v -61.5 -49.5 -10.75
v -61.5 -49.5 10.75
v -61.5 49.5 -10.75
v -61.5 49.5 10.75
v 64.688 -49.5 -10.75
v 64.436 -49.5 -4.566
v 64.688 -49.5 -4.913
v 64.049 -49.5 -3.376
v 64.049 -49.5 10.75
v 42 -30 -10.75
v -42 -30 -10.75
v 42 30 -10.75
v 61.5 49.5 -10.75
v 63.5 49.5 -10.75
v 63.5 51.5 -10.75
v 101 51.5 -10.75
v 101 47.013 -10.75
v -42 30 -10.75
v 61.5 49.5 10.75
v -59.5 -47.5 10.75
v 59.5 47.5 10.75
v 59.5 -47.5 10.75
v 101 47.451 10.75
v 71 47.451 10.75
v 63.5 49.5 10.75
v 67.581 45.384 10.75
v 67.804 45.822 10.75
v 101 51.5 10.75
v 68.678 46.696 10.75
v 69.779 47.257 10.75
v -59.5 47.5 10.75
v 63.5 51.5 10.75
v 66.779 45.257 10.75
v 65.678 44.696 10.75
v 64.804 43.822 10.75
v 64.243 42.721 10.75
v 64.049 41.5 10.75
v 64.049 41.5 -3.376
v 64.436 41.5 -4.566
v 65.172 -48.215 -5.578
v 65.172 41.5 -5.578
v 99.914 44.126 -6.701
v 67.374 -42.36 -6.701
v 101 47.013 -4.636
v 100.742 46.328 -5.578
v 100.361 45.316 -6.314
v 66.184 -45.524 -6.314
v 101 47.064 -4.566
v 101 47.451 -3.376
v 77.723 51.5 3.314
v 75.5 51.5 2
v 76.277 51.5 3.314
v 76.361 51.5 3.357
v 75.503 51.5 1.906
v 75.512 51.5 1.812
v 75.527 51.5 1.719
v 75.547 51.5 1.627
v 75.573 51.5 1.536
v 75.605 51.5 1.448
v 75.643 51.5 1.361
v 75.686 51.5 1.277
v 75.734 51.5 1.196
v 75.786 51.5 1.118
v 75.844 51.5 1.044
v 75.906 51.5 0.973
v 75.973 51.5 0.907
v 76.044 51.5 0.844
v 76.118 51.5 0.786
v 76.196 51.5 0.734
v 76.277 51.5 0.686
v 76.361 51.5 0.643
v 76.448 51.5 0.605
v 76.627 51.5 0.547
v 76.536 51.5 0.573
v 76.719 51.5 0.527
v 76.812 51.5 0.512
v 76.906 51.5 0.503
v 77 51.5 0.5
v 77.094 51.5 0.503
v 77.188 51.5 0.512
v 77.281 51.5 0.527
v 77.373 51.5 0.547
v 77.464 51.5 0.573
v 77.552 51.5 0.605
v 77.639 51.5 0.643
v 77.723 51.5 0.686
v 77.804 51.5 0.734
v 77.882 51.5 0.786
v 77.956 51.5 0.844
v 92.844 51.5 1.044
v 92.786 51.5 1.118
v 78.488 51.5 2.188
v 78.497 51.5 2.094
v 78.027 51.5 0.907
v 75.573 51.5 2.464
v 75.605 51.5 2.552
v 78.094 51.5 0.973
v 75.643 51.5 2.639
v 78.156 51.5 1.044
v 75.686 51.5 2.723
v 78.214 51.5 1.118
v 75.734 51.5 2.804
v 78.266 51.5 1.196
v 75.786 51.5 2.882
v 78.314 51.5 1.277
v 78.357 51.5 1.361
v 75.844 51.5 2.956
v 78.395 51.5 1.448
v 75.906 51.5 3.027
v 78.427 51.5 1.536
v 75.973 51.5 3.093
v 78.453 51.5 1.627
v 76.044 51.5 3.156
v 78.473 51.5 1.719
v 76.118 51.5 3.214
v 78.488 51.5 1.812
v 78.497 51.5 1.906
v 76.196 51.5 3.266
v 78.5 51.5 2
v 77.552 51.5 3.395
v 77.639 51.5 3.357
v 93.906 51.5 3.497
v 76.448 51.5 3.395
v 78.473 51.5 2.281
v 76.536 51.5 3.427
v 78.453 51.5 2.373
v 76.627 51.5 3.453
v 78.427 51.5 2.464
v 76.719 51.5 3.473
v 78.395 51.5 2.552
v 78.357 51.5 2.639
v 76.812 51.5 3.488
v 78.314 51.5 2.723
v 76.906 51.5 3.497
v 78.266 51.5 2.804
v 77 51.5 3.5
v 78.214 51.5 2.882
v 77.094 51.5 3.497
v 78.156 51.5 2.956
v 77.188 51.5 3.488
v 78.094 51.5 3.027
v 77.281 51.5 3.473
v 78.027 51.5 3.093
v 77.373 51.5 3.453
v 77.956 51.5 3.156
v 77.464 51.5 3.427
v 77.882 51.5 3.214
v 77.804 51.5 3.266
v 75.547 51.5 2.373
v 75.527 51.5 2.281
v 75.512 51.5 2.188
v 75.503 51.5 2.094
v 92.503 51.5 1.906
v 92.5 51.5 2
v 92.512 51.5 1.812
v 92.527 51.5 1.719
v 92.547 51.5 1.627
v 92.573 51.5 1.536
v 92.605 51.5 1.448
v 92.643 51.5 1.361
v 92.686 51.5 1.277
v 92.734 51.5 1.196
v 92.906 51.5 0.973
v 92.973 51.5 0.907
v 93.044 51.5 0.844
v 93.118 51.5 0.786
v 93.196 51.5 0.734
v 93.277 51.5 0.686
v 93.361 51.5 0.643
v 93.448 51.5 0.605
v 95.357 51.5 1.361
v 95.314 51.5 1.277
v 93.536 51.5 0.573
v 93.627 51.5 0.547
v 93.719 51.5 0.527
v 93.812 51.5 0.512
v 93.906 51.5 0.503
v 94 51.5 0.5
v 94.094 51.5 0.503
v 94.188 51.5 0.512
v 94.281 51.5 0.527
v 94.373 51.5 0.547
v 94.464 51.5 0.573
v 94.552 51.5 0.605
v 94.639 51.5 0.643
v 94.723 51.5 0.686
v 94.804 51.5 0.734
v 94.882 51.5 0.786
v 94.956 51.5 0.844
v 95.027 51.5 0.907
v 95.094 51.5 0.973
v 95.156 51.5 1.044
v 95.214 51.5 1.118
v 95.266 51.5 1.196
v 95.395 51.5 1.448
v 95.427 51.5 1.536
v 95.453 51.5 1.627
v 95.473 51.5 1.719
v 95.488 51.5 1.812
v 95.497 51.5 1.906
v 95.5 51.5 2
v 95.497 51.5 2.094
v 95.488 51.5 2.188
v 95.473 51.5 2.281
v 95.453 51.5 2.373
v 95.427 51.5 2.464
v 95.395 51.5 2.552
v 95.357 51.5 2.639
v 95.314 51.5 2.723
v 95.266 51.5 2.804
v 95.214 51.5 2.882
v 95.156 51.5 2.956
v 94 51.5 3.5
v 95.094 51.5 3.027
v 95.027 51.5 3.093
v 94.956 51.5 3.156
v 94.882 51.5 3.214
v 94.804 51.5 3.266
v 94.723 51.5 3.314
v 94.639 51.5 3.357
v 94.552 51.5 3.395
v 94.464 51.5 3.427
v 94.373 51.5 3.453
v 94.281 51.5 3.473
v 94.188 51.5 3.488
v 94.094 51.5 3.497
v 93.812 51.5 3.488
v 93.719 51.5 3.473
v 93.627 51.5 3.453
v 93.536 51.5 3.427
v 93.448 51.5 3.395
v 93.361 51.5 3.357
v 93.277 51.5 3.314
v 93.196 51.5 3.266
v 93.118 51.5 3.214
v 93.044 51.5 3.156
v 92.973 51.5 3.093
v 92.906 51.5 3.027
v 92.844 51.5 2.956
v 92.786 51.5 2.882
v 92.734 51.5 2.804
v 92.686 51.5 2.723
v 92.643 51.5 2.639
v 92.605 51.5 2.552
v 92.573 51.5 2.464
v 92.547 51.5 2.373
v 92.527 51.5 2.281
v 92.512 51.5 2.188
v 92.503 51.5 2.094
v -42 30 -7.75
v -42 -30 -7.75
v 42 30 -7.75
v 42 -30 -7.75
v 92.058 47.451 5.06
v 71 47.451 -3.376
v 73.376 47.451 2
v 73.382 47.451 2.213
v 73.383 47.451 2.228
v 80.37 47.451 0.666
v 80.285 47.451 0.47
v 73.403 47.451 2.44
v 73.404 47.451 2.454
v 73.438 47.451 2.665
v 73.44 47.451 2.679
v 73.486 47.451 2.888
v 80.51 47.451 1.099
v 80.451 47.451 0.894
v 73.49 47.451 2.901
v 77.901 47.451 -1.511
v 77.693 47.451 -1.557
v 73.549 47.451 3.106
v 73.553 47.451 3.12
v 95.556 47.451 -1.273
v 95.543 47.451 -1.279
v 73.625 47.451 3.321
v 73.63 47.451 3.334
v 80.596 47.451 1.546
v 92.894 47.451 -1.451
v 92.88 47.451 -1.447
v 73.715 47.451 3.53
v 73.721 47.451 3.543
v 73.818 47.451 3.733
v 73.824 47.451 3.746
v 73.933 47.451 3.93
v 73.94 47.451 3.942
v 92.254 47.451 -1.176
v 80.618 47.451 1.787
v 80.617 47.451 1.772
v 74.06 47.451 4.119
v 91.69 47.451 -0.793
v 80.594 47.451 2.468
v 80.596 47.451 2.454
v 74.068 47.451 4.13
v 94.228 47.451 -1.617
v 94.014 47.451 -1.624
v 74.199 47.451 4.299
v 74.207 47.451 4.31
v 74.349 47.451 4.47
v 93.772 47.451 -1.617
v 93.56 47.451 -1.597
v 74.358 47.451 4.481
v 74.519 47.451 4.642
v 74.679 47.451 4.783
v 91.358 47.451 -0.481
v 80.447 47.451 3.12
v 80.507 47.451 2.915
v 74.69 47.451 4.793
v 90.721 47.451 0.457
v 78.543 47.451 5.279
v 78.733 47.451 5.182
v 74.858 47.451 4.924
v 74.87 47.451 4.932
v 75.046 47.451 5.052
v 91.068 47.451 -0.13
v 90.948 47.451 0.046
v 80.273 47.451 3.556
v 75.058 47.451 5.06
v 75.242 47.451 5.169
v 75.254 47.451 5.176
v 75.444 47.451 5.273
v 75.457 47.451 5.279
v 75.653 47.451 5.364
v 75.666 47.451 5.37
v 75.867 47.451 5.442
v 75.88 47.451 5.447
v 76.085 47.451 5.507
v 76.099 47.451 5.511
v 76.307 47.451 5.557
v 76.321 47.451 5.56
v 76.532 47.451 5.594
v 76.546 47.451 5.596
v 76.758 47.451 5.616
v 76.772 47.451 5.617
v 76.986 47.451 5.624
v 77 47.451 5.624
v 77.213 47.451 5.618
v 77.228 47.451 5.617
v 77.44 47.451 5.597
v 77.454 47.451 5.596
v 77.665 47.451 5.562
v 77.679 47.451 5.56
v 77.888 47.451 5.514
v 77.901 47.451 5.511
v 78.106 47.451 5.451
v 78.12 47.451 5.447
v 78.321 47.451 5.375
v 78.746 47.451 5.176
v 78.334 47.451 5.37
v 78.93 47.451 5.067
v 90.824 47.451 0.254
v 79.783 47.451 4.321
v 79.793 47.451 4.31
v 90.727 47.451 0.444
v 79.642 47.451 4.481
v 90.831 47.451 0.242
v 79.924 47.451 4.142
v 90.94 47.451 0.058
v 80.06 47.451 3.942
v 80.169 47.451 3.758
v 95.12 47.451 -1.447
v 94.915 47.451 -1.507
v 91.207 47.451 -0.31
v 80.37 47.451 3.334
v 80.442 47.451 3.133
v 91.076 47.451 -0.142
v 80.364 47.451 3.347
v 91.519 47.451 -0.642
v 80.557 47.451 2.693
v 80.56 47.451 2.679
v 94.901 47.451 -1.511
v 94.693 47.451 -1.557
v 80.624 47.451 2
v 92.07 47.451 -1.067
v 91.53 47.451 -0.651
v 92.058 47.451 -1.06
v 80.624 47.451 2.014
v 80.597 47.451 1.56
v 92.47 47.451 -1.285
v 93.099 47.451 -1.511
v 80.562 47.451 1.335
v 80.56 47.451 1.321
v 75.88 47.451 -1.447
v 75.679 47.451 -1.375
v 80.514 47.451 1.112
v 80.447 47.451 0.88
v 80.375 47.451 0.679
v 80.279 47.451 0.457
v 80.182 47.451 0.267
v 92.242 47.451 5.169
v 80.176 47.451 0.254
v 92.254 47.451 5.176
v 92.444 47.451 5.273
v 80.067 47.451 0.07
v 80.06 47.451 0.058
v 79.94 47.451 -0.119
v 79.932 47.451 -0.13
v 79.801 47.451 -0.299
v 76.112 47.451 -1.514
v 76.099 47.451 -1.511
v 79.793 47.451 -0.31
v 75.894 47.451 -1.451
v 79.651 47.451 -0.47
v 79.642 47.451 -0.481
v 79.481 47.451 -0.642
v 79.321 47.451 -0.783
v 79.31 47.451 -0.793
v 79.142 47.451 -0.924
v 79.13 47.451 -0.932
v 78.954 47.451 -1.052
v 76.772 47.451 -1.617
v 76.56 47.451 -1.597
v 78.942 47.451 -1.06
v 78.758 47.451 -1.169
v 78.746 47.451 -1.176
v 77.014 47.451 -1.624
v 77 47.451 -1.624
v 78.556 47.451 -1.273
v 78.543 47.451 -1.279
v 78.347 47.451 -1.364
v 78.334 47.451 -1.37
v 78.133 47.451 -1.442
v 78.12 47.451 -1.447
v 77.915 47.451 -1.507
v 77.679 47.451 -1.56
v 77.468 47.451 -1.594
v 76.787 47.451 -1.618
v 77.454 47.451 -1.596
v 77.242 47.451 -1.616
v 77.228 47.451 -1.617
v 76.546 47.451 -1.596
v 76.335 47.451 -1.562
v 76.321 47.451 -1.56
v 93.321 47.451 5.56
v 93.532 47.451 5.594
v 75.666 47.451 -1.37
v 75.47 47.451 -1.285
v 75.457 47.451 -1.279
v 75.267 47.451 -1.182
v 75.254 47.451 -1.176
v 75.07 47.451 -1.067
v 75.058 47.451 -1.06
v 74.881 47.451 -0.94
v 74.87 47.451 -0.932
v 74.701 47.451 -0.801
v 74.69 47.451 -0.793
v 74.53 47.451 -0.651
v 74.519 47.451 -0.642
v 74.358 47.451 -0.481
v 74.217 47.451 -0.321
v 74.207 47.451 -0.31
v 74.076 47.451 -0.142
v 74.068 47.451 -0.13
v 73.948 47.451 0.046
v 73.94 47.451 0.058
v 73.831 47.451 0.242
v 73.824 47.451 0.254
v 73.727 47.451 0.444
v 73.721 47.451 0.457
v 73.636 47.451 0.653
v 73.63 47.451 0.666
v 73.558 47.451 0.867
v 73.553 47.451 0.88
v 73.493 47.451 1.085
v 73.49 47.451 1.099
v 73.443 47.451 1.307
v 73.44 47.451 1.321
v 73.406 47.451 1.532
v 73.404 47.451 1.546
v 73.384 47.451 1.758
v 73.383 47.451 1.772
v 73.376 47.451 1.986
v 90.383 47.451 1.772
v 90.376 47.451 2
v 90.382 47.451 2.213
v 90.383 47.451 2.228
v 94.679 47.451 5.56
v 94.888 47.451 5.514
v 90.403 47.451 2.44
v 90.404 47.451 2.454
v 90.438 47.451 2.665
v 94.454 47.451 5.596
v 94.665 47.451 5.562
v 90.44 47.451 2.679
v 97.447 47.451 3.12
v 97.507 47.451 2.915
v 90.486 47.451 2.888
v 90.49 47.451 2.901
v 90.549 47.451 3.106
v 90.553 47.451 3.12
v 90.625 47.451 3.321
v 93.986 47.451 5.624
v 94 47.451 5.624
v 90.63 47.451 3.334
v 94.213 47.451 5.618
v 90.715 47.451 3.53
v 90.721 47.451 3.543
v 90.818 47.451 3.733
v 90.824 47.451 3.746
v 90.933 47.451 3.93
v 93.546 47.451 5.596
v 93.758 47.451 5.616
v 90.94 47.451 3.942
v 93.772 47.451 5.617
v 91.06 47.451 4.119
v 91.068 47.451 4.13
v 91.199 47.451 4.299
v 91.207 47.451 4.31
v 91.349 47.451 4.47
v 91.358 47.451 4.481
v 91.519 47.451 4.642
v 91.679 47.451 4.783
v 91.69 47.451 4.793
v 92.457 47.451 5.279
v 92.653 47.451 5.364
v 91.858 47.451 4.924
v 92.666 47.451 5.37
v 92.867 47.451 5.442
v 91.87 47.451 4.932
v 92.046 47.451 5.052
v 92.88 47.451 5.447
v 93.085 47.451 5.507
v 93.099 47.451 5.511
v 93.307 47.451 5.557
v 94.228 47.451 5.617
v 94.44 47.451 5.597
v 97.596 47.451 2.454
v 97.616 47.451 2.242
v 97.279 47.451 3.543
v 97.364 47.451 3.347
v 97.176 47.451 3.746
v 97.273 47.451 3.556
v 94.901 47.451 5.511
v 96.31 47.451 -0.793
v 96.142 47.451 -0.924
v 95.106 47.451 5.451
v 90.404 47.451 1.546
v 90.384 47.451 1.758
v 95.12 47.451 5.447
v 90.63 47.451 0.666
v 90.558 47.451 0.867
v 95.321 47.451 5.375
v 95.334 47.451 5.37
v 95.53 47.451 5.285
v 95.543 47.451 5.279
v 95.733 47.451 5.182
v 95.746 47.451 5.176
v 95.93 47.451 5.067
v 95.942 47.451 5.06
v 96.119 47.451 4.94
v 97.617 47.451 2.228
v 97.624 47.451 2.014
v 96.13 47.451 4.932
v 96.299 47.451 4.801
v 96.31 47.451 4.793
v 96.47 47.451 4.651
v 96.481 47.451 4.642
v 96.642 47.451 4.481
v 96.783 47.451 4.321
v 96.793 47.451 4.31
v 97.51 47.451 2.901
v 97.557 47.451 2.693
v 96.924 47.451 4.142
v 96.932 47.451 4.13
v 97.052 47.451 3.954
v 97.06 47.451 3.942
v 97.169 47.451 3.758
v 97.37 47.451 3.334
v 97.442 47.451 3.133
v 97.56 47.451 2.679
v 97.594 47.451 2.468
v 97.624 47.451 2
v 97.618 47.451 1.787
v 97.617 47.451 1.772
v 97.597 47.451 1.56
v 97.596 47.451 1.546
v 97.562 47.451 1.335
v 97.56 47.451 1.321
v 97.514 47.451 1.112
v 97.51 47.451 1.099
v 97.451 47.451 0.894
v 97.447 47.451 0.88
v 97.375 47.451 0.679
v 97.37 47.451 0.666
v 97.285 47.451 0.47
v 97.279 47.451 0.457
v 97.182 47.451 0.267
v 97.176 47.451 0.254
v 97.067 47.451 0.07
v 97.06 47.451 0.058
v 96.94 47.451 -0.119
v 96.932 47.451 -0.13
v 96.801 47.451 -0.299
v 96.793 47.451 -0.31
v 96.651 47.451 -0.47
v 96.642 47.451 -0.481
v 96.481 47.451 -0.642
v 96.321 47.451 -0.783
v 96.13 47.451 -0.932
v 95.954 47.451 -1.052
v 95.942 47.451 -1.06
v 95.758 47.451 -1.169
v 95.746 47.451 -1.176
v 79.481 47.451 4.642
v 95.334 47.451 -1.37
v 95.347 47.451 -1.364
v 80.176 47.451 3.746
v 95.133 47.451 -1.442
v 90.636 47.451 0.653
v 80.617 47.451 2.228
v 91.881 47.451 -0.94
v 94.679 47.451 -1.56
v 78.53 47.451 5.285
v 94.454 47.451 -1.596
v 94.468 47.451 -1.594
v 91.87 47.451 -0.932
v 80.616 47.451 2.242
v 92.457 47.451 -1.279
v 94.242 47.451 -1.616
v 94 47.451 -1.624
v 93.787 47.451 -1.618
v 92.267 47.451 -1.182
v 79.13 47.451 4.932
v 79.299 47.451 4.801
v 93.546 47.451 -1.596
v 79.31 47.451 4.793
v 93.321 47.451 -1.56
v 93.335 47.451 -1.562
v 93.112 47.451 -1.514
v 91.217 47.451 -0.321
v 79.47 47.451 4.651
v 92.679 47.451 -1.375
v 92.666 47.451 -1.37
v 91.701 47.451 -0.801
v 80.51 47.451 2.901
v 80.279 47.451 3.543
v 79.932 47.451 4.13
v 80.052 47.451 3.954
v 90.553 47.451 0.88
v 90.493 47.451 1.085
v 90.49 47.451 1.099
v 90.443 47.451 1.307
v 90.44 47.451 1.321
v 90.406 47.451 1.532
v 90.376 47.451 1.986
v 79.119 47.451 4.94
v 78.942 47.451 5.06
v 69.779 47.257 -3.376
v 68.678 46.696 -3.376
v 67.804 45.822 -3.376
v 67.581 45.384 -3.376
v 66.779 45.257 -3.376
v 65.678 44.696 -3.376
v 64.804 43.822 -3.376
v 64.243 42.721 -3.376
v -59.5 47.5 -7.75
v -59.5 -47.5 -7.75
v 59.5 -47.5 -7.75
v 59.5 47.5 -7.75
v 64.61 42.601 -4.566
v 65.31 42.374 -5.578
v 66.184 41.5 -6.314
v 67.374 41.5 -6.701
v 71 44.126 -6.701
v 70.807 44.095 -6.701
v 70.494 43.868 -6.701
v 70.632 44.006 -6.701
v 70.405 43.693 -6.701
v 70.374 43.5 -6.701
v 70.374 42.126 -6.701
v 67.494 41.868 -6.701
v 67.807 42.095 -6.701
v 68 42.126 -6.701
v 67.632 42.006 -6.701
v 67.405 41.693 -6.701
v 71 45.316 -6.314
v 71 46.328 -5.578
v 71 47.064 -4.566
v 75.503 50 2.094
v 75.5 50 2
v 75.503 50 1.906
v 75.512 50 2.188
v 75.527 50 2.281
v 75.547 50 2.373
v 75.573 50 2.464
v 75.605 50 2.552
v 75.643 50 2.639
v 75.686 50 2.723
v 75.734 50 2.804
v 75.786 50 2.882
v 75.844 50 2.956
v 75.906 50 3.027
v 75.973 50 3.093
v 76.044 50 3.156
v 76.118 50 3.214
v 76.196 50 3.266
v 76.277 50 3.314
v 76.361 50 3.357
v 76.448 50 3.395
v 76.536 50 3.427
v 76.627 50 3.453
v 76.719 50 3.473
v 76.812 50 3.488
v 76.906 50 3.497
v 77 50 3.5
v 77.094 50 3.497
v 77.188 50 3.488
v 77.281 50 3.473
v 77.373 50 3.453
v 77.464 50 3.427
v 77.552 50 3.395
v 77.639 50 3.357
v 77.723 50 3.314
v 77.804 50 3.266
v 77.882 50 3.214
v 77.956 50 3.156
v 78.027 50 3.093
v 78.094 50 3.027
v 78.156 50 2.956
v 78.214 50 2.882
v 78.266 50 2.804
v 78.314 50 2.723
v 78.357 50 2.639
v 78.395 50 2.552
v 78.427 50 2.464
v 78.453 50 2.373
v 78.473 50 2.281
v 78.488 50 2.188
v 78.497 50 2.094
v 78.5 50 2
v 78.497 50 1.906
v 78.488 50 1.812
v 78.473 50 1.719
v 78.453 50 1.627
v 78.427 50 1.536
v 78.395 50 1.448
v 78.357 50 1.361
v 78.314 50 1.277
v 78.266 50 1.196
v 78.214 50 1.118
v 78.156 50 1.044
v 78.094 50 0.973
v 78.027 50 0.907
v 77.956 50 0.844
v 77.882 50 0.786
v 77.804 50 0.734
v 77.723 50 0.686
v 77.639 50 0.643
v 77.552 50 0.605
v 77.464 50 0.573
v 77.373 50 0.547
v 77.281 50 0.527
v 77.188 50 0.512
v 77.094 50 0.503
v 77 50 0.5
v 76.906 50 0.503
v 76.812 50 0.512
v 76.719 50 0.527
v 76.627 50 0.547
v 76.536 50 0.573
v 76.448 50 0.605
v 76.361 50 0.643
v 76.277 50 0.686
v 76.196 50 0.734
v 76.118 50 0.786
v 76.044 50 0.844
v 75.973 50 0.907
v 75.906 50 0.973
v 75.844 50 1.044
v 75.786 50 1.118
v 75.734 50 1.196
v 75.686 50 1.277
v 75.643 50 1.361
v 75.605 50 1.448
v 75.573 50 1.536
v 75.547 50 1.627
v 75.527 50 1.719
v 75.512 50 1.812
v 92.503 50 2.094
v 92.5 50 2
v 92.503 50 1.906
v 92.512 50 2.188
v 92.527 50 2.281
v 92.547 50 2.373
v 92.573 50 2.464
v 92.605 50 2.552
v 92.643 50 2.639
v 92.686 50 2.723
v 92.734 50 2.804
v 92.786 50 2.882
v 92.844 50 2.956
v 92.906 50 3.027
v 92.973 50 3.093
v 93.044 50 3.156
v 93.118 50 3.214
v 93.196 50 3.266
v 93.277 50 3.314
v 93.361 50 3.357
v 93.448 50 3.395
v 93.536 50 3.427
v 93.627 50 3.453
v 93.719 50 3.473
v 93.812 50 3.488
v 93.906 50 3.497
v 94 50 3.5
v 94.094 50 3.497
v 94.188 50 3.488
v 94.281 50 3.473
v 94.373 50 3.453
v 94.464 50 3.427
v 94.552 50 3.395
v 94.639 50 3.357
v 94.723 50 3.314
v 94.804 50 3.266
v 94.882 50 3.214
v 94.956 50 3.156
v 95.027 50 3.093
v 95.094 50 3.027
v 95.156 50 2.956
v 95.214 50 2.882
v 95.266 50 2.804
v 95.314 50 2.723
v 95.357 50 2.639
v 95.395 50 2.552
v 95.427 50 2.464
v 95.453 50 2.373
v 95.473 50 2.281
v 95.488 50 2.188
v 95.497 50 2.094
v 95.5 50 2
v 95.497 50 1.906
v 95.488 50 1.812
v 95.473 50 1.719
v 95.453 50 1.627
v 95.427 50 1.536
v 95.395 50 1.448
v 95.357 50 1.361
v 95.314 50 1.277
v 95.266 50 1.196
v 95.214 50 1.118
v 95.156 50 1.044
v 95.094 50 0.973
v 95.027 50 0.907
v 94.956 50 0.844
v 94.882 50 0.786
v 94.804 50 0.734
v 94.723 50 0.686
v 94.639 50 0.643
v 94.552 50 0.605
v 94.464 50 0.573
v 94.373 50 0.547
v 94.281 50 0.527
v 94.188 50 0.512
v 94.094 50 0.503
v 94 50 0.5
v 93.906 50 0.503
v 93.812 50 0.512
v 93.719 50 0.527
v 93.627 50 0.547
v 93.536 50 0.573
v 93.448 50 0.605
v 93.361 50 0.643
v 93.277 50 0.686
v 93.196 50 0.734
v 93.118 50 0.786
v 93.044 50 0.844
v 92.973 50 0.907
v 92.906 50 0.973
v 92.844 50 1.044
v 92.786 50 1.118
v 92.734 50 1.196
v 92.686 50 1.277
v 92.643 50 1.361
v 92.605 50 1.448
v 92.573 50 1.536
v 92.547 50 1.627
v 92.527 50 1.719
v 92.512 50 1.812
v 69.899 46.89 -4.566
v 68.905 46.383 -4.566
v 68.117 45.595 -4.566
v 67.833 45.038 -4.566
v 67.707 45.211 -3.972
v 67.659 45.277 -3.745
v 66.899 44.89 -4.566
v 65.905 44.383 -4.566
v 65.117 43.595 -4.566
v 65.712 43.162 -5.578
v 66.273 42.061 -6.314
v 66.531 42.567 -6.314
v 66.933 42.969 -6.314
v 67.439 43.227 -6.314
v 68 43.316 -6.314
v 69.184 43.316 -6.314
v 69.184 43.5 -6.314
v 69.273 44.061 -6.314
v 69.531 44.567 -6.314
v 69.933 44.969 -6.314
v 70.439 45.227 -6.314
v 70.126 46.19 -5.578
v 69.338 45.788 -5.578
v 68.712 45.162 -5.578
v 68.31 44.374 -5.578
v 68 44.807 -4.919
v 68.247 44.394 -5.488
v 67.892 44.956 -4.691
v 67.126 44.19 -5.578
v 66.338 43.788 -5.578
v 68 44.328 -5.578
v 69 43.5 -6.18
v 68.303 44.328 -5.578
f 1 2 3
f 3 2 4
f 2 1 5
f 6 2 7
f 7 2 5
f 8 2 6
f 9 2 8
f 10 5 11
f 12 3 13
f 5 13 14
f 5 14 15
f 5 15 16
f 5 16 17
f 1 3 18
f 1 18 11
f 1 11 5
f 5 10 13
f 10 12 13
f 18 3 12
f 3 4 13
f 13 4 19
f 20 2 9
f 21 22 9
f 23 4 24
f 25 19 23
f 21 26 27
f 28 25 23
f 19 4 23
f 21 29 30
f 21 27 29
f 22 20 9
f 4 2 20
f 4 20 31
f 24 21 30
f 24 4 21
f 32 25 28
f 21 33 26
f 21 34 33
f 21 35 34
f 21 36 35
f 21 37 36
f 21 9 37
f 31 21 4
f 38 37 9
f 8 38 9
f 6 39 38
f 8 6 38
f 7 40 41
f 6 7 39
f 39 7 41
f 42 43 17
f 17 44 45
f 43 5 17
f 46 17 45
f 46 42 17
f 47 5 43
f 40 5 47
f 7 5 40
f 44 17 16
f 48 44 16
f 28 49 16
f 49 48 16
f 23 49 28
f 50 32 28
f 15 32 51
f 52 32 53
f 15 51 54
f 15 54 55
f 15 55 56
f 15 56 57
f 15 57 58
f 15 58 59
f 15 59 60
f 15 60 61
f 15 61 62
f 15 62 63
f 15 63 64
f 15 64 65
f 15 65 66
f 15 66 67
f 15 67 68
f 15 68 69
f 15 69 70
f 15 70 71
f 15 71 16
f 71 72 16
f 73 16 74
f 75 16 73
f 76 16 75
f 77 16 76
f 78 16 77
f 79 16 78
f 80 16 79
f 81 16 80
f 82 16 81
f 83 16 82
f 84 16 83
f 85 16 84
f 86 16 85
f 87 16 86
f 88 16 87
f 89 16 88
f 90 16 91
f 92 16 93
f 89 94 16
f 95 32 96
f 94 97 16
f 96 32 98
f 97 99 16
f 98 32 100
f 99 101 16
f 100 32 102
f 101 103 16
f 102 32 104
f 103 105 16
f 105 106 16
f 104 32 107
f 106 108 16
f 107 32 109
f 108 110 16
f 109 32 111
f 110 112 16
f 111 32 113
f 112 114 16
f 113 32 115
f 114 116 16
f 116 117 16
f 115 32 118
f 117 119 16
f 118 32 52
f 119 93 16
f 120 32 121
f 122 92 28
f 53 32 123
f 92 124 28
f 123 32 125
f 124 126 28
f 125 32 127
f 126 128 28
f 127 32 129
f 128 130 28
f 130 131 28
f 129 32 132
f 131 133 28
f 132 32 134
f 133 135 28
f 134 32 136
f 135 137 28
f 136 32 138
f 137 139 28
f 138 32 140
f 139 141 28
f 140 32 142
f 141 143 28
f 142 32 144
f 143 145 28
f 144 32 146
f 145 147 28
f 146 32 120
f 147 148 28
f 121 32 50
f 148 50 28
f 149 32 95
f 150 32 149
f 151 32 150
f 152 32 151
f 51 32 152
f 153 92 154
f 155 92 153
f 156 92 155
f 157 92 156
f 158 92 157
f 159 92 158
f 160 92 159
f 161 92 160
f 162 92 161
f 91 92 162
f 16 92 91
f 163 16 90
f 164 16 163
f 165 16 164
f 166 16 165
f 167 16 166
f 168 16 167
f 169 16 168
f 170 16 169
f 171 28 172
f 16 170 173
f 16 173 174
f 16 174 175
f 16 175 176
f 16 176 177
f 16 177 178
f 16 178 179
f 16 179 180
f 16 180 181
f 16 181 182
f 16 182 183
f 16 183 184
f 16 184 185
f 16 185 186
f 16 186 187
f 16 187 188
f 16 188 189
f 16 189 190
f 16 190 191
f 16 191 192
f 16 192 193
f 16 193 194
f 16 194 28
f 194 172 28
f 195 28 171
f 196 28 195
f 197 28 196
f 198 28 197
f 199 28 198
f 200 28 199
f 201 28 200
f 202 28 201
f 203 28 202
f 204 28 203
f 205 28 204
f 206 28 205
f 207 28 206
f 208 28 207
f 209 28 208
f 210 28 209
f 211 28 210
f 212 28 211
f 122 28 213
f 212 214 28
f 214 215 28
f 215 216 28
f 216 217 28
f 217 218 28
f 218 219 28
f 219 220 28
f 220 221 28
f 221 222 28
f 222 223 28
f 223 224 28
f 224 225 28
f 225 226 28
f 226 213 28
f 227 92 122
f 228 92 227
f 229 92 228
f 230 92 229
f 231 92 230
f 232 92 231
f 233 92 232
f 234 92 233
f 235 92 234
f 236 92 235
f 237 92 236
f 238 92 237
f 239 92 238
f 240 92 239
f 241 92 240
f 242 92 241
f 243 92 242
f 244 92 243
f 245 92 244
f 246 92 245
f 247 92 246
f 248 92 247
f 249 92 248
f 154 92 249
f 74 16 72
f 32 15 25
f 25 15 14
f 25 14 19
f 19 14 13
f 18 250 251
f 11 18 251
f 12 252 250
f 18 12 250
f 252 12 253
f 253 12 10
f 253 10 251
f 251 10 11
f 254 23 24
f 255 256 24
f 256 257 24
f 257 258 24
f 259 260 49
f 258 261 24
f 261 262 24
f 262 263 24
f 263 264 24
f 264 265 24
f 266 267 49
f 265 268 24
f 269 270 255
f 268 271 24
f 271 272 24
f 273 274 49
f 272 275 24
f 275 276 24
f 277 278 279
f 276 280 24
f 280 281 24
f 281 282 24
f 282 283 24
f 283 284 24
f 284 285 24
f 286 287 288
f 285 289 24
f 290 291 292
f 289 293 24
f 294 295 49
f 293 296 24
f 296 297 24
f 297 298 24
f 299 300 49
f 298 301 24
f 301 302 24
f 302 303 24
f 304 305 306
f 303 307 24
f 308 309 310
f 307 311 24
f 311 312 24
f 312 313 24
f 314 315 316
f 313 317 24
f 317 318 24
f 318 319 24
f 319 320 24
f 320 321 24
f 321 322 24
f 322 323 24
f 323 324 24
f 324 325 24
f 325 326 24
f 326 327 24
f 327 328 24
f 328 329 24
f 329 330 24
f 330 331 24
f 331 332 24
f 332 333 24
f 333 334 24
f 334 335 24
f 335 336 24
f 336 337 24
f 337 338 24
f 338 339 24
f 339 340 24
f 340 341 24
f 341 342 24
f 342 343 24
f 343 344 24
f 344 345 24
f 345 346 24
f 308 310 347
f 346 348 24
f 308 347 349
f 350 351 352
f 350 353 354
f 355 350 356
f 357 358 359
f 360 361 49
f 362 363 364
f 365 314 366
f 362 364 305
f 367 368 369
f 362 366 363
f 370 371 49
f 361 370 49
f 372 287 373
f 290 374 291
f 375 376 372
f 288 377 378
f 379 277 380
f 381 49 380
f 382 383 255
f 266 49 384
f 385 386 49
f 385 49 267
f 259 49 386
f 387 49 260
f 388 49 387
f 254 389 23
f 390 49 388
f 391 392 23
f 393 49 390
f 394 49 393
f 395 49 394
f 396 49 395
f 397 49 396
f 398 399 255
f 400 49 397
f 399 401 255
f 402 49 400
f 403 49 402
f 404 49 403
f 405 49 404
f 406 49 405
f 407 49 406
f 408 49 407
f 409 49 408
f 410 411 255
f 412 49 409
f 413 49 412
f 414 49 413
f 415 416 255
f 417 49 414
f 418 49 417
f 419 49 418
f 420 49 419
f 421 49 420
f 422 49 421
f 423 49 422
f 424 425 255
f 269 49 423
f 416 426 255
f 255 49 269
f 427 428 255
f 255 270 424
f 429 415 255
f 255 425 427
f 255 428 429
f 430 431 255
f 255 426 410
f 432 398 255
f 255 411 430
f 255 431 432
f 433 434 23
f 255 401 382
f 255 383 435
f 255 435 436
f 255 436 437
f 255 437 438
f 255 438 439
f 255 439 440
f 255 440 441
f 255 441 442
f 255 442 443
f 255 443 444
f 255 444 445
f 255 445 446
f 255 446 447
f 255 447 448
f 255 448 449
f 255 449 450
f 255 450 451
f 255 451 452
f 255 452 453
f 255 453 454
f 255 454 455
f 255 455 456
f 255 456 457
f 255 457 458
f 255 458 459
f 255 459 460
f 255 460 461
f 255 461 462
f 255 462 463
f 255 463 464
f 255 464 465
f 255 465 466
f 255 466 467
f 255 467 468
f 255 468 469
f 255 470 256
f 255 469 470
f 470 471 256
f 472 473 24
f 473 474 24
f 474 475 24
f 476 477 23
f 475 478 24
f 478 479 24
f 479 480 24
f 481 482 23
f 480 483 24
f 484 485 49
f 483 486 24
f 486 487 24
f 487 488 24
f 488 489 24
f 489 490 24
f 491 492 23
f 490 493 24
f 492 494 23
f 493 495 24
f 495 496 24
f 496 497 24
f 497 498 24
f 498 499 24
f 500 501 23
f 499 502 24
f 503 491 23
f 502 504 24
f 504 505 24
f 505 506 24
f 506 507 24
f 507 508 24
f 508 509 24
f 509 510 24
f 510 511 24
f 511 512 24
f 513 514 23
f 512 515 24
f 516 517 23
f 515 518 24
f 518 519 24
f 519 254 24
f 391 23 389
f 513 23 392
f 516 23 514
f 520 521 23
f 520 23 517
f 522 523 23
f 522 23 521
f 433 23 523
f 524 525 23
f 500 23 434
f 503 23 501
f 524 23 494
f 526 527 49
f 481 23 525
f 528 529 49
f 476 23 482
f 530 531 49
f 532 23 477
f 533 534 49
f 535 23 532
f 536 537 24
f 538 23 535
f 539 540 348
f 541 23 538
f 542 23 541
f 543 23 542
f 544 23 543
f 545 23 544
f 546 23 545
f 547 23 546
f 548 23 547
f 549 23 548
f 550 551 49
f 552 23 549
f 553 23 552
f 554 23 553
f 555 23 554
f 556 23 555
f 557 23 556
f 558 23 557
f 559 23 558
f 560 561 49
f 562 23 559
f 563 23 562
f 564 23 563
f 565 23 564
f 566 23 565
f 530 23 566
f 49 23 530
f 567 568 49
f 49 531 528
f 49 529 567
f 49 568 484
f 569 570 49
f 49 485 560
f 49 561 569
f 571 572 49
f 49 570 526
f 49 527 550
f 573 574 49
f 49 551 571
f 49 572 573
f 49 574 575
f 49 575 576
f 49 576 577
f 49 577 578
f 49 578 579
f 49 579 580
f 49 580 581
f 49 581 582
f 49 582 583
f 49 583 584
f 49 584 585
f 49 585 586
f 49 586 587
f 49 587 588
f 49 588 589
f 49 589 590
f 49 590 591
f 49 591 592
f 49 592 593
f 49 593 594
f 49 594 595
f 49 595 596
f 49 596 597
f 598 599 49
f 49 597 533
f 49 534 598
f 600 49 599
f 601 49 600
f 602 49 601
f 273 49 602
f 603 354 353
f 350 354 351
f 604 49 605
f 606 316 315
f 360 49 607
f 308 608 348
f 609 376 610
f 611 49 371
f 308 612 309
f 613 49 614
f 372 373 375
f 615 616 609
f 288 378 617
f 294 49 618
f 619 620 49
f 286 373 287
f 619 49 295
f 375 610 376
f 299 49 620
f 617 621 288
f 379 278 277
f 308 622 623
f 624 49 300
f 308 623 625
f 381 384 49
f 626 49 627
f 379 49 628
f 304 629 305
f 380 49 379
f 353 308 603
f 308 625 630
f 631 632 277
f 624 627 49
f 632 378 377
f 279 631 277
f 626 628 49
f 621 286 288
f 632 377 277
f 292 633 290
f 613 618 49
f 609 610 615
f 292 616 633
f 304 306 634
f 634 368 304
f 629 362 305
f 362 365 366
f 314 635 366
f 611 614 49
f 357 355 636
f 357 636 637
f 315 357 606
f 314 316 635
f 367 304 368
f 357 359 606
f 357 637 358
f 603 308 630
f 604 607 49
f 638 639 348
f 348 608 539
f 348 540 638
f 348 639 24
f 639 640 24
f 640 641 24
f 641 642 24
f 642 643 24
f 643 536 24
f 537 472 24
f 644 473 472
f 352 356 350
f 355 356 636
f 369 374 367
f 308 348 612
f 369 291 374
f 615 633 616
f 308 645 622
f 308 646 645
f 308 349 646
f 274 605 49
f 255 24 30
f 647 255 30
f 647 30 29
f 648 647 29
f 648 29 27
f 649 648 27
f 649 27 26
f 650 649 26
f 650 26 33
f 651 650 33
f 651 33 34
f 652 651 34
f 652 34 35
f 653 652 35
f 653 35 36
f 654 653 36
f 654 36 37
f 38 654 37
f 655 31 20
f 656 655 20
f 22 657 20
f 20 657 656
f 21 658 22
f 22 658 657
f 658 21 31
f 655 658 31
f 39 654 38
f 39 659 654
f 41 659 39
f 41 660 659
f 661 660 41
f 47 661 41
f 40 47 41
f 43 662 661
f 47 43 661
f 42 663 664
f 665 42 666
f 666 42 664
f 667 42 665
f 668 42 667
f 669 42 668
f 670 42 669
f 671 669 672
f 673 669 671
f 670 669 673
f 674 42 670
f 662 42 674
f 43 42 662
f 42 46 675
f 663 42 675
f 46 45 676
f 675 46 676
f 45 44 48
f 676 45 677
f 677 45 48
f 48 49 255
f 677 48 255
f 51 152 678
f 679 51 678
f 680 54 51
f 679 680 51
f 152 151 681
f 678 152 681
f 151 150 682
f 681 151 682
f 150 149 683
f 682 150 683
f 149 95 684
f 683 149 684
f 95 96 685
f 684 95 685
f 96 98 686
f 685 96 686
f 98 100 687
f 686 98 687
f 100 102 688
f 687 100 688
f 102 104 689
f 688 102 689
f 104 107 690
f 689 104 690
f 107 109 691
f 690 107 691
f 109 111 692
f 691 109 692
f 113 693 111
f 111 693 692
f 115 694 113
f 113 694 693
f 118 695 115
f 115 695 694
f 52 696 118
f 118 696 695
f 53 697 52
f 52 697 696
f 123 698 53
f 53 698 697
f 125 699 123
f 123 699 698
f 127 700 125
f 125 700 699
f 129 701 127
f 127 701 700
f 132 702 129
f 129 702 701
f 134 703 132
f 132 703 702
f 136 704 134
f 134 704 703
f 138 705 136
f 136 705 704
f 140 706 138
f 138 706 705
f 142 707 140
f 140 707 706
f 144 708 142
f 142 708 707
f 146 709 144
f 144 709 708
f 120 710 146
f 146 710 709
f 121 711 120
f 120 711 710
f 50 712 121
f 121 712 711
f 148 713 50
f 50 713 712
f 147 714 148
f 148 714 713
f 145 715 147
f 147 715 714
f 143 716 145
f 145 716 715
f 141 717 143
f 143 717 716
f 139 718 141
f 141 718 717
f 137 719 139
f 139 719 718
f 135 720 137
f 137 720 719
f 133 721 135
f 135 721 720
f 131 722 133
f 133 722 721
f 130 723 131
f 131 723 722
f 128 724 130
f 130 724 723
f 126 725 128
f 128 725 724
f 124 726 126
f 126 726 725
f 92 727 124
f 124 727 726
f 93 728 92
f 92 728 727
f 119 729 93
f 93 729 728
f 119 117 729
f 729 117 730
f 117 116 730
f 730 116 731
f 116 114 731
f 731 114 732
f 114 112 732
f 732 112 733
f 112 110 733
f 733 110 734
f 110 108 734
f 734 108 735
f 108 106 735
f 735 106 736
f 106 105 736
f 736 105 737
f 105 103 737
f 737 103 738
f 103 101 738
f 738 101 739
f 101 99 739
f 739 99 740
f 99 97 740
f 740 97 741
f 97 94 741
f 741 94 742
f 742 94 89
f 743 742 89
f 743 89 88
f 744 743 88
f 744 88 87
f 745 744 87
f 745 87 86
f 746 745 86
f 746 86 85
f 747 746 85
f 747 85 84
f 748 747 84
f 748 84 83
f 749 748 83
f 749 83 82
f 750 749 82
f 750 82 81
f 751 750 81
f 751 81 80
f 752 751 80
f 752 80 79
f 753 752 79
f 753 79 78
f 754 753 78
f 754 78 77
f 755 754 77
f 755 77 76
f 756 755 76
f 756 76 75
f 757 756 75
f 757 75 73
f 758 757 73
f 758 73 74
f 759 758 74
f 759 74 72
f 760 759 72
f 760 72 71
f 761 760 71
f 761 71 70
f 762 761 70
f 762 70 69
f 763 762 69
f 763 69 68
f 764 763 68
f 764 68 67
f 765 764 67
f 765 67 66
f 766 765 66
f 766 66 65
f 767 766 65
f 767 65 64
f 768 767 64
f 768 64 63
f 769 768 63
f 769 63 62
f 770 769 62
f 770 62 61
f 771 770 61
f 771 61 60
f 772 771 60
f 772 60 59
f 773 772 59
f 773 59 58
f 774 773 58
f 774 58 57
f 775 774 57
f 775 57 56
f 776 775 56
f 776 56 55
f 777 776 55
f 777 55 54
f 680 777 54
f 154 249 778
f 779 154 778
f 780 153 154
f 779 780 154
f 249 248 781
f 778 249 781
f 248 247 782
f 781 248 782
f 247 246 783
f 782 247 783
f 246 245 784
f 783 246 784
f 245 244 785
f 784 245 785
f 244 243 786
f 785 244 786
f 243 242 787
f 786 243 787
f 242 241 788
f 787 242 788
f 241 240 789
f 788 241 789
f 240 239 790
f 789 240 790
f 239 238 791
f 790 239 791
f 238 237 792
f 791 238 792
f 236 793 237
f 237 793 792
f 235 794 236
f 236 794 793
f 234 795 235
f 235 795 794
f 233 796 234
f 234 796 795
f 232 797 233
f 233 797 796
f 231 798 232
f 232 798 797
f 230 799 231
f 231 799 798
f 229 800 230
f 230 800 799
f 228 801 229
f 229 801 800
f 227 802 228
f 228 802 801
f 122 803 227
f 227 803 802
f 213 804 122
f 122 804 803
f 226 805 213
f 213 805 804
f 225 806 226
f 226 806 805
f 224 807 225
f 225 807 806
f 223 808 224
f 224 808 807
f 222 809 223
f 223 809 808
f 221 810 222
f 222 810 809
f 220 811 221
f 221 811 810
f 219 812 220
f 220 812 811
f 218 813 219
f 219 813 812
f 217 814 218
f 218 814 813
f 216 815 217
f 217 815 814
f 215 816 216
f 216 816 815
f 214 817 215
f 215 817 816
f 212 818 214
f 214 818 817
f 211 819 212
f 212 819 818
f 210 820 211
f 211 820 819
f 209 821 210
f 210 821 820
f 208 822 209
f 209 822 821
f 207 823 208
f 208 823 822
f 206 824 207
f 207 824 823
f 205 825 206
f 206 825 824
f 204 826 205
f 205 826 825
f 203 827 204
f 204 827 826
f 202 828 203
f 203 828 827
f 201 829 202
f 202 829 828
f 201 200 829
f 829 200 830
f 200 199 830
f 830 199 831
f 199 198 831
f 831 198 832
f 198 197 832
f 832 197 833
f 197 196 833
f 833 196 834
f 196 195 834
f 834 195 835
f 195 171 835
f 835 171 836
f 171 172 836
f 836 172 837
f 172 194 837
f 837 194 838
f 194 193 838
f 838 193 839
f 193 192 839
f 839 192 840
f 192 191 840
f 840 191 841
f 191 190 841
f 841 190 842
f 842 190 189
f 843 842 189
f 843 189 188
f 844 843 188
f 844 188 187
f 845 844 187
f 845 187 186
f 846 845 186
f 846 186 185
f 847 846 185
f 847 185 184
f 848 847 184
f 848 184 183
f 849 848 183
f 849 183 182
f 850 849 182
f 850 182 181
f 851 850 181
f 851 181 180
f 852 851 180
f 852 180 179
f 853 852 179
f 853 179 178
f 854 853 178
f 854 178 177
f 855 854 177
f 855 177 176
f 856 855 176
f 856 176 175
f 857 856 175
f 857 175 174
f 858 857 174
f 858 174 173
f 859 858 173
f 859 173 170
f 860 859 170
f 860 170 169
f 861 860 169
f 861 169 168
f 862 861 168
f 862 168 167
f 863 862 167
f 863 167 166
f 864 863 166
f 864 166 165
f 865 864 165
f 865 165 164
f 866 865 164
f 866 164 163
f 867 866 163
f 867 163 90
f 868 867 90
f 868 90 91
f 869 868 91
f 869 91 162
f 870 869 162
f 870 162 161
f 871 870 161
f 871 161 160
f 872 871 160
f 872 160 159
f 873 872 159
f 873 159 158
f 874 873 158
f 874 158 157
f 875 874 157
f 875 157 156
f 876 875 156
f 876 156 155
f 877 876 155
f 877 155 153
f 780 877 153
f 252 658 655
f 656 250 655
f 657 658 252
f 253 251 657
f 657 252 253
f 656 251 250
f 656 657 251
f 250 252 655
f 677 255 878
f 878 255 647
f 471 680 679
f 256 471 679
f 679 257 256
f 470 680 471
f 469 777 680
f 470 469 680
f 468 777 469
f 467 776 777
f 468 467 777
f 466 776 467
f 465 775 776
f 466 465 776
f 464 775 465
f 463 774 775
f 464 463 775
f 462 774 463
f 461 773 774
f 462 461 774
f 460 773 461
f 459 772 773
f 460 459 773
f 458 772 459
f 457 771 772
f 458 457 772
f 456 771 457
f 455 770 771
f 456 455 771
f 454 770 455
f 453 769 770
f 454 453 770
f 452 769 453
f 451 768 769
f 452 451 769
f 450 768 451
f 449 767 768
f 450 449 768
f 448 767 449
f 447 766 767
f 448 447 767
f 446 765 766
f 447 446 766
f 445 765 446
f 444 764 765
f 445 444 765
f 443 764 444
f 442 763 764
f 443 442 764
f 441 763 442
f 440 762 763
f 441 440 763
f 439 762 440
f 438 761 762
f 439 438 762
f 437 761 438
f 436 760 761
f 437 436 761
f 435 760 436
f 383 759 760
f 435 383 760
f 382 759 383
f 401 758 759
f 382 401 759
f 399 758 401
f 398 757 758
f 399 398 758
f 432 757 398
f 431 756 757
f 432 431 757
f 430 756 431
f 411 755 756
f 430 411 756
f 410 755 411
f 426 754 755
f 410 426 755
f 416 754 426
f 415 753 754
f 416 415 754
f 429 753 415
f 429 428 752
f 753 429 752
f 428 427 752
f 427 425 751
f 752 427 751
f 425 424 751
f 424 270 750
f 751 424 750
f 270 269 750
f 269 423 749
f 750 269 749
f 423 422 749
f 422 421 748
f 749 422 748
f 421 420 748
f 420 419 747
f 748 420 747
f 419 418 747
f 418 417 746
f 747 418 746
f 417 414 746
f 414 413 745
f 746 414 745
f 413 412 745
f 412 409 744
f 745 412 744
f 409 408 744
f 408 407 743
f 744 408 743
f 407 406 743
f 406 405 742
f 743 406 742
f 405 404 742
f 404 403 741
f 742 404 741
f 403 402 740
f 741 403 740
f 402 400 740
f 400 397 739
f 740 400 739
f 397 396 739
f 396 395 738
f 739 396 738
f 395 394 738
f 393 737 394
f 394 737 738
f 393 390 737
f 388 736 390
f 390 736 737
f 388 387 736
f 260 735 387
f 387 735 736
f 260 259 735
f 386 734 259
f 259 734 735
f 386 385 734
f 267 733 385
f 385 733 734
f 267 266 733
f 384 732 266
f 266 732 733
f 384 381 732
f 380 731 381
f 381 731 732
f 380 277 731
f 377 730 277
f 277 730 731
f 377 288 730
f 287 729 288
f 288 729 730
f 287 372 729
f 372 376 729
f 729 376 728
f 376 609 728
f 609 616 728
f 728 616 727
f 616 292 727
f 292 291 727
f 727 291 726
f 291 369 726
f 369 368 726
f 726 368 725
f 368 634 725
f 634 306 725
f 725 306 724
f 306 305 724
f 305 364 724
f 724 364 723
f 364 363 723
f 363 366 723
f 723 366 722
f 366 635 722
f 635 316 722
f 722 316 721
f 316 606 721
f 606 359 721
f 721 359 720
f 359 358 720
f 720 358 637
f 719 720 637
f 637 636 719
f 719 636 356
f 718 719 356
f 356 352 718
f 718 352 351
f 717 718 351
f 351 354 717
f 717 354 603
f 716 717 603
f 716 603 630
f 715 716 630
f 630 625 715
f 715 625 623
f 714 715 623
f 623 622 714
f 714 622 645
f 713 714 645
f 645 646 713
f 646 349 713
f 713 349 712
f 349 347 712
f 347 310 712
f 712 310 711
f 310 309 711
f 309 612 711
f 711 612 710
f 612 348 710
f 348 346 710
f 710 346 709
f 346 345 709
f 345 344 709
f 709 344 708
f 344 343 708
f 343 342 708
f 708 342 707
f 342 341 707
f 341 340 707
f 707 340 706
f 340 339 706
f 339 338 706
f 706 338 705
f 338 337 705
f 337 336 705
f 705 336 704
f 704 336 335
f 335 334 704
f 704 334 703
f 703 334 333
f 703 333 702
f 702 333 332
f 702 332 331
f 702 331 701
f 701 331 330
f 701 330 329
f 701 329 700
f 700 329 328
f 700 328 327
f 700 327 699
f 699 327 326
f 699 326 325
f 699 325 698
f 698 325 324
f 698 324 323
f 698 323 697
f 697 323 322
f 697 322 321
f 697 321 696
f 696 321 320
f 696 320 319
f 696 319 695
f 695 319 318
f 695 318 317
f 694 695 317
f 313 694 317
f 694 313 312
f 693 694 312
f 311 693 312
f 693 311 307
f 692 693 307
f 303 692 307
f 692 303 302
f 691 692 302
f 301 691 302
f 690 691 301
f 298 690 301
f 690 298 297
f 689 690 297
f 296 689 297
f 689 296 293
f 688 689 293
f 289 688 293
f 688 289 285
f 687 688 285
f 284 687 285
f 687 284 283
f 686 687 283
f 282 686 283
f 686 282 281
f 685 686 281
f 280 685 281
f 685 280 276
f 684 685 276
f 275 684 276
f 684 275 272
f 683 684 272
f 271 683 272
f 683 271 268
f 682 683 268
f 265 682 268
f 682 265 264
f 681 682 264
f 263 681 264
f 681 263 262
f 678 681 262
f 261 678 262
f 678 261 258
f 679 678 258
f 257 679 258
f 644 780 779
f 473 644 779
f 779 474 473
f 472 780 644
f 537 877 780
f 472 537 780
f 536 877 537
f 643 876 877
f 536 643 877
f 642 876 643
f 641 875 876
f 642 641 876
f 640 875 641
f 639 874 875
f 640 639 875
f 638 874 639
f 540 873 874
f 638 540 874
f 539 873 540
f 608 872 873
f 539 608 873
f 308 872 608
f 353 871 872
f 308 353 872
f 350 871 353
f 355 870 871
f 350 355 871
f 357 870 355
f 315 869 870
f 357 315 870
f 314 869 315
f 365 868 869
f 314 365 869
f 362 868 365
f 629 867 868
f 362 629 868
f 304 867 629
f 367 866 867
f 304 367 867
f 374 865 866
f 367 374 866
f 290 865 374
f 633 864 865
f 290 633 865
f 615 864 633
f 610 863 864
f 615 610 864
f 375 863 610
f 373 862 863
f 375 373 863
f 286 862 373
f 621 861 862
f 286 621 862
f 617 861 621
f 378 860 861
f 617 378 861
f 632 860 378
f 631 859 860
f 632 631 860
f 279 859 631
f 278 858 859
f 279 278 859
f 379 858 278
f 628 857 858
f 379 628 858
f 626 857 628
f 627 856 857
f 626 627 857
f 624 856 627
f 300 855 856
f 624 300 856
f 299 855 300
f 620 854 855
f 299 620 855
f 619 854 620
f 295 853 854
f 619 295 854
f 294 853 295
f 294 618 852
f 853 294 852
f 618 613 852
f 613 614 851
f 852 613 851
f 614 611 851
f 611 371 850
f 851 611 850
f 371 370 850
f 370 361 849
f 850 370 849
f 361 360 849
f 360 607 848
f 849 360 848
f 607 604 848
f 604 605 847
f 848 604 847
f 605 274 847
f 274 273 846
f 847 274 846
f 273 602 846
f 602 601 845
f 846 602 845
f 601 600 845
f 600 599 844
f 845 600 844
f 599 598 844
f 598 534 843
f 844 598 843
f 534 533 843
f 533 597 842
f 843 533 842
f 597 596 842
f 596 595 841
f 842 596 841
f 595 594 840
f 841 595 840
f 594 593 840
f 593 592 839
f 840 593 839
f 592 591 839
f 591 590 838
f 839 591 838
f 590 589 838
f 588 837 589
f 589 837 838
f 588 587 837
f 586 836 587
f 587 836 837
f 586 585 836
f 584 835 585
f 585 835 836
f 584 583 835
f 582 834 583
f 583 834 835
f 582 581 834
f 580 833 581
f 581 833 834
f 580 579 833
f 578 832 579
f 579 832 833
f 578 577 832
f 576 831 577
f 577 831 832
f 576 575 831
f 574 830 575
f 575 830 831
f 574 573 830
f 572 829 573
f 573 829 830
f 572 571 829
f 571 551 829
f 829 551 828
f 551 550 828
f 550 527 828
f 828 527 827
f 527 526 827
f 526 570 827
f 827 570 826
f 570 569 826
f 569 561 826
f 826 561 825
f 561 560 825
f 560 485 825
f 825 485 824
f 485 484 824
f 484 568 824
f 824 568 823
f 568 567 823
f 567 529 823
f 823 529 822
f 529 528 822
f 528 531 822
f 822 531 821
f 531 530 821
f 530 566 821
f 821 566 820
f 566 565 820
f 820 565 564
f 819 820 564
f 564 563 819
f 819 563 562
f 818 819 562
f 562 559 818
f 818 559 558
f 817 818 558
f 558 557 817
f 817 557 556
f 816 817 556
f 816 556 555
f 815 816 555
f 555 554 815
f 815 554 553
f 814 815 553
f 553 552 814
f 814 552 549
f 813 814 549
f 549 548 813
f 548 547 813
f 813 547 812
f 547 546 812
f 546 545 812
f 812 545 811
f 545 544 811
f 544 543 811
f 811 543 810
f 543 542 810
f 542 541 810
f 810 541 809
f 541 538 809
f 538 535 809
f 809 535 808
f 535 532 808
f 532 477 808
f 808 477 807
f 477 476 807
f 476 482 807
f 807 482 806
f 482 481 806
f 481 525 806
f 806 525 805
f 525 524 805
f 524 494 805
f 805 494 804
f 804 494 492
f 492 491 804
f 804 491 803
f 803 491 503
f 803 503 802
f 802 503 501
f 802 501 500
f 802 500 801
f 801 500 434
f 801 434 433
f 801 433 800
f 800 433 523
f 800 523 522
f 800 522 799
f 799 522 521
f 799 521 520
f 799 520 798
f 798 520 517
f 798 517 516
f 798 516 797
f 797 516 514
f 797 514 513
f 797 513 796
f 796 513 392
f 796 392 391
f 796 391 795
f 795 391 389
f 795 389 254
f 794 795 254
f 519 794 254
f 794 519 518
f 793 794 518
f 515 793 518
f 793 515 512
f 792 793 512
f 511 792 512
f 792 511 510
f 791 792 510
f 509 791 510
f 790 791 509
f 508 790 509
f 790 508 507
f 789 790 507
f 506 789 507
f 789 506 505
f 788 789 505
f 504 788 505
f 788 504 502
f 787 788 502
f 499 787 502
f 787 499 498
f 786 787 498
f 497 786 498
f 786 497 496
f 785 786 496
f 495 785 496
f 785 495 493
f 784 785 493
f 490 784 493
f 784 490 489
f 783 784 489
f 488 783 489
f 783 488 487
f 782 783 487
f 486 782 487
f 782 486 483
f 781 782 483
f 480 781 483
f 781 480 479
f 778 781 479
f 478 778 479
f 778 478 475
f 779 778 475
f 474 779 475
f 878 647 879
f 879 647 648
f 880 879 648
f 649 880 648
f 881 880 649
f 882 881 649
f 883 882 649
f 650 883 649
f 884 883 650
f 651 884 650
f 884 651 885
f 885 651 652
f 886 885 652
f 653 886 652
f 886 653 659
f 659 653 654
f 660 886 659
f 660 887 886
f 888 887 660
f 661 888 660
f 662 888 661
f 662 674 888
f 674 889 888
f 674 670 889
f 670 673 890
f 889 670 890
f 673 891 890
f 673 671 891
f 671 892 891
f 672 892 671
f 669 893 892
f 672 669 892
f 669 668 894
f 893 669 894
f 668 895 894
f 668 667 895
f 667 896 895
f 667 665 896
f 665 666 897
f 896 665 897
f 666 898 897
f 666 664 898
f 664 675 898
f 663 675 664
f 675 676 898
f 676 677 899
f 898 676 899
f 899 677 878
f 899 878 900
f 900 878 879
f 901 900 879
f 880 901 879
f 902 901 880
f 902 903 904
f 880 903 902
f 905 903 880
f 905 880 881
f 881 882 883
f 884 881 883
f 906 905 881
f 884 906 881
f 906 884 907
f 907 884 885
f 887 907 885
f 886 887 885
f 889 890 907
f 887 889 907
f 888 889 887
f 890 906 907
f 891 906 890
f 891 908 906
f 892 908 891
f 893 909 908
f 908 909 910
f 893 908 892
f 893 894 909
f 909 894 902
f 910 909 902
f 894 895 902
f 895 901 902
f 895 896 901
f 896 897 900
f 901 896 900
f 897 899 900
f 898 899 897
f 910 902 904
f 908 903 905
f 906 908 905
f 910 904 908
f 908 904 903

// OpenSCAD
detail = 20;
marge = 0.5;
epaisseur = 2;
longueur = 118;
profondeur = 94;
largeur = 17;
hauteur = 19;
espace_x = 3;
espace_y = 2;
epaisseur_support = 2*epaisseur;

longueur_ext = longueur+2*(epaisseur+marge);
profondeur_ext = profondeur+2*(epaisseur+marge);
hauteur_ext =  hauteur+epaisseur+marge;

module porte_savon(){
	difference(){
		cube([longueur_ext, profondeur_ext, hauteur_ext], center=true);
		translate([0,0,epaisseur]) cube([longueur+2*marge, profondeur+2*marge, hauteur+marge], center=true);
		translate([0,0,-epaisseur]) cube([longueur-2*largeur, profondeur-2*largeur, hauteur], center=true);
	}
}

module fixation(){
	difference(){
		cube([longueur_ext/3, espace_y+profondeur_ext, hauteur_ext]);
		translate([-marge,profondeur_ext,-marge])cube([espace_x+2*marge, espace_y+2*marge, hauteur_ext+2*marge]);
		translate([2*epaisseur_support,-2*epaisseur_support,2*epaisseur_support]) minkowski (){
			union(){			
			cube([longueur_ext/3,profondeur_ext,hauteur_ext]);
			translate([espace_x,espace_y,0]) cube([longueur_ext/3,profondeur_ext,hauteur_ext]);
			}
			sphere (epaisseur_support, $fn=detail);
		}
		translate([longueur_ext/3+marge,-marge,0]) linear_extrude(height=10*epaisseur, center=true) polygon(points=[[0,0],[epaisseur_support-longueur_ext/3,0],[2*marge,espace_y+profondeur_ext]], paths=[[0,1,2]]);
	}

}

module support_savon(){
	difference(){
		union(){
		color("Red") porte_savon();
		translate([longueur/2+2*marge,-profondeur/2-(epaisseur+marge),-(hauteur+epaisseur+marge)/2])  fixation();
		}
		translate([(longueur_ext/2+(epaisseur_support+espace_x)+(longueur_ext/3-(epaisseur_support+espace_x))/4),espace_y+profondeur_ext/2-epaisseur_support-marge,epaisseur_support/2 ]) rotate([-90,0,0]) vis();
		translate([(longueur_ext/2+(epaisseur_support+espace_x)+3*(longueur_ext/3-(epaisseur_support+espace_x))/4),espace_y+profondeur_ext/2-epaisseur_support-marge,epaisseur_support/2 ]) rotate([-90,0,0]) vis();
	}
}

module vis(){
	cylinder (r1=1.5, r2=1.5, h=10, $fn=100);
	cylinder (r1=4, r2=1.5, h=3, $fn=100);
}

support_savon();
